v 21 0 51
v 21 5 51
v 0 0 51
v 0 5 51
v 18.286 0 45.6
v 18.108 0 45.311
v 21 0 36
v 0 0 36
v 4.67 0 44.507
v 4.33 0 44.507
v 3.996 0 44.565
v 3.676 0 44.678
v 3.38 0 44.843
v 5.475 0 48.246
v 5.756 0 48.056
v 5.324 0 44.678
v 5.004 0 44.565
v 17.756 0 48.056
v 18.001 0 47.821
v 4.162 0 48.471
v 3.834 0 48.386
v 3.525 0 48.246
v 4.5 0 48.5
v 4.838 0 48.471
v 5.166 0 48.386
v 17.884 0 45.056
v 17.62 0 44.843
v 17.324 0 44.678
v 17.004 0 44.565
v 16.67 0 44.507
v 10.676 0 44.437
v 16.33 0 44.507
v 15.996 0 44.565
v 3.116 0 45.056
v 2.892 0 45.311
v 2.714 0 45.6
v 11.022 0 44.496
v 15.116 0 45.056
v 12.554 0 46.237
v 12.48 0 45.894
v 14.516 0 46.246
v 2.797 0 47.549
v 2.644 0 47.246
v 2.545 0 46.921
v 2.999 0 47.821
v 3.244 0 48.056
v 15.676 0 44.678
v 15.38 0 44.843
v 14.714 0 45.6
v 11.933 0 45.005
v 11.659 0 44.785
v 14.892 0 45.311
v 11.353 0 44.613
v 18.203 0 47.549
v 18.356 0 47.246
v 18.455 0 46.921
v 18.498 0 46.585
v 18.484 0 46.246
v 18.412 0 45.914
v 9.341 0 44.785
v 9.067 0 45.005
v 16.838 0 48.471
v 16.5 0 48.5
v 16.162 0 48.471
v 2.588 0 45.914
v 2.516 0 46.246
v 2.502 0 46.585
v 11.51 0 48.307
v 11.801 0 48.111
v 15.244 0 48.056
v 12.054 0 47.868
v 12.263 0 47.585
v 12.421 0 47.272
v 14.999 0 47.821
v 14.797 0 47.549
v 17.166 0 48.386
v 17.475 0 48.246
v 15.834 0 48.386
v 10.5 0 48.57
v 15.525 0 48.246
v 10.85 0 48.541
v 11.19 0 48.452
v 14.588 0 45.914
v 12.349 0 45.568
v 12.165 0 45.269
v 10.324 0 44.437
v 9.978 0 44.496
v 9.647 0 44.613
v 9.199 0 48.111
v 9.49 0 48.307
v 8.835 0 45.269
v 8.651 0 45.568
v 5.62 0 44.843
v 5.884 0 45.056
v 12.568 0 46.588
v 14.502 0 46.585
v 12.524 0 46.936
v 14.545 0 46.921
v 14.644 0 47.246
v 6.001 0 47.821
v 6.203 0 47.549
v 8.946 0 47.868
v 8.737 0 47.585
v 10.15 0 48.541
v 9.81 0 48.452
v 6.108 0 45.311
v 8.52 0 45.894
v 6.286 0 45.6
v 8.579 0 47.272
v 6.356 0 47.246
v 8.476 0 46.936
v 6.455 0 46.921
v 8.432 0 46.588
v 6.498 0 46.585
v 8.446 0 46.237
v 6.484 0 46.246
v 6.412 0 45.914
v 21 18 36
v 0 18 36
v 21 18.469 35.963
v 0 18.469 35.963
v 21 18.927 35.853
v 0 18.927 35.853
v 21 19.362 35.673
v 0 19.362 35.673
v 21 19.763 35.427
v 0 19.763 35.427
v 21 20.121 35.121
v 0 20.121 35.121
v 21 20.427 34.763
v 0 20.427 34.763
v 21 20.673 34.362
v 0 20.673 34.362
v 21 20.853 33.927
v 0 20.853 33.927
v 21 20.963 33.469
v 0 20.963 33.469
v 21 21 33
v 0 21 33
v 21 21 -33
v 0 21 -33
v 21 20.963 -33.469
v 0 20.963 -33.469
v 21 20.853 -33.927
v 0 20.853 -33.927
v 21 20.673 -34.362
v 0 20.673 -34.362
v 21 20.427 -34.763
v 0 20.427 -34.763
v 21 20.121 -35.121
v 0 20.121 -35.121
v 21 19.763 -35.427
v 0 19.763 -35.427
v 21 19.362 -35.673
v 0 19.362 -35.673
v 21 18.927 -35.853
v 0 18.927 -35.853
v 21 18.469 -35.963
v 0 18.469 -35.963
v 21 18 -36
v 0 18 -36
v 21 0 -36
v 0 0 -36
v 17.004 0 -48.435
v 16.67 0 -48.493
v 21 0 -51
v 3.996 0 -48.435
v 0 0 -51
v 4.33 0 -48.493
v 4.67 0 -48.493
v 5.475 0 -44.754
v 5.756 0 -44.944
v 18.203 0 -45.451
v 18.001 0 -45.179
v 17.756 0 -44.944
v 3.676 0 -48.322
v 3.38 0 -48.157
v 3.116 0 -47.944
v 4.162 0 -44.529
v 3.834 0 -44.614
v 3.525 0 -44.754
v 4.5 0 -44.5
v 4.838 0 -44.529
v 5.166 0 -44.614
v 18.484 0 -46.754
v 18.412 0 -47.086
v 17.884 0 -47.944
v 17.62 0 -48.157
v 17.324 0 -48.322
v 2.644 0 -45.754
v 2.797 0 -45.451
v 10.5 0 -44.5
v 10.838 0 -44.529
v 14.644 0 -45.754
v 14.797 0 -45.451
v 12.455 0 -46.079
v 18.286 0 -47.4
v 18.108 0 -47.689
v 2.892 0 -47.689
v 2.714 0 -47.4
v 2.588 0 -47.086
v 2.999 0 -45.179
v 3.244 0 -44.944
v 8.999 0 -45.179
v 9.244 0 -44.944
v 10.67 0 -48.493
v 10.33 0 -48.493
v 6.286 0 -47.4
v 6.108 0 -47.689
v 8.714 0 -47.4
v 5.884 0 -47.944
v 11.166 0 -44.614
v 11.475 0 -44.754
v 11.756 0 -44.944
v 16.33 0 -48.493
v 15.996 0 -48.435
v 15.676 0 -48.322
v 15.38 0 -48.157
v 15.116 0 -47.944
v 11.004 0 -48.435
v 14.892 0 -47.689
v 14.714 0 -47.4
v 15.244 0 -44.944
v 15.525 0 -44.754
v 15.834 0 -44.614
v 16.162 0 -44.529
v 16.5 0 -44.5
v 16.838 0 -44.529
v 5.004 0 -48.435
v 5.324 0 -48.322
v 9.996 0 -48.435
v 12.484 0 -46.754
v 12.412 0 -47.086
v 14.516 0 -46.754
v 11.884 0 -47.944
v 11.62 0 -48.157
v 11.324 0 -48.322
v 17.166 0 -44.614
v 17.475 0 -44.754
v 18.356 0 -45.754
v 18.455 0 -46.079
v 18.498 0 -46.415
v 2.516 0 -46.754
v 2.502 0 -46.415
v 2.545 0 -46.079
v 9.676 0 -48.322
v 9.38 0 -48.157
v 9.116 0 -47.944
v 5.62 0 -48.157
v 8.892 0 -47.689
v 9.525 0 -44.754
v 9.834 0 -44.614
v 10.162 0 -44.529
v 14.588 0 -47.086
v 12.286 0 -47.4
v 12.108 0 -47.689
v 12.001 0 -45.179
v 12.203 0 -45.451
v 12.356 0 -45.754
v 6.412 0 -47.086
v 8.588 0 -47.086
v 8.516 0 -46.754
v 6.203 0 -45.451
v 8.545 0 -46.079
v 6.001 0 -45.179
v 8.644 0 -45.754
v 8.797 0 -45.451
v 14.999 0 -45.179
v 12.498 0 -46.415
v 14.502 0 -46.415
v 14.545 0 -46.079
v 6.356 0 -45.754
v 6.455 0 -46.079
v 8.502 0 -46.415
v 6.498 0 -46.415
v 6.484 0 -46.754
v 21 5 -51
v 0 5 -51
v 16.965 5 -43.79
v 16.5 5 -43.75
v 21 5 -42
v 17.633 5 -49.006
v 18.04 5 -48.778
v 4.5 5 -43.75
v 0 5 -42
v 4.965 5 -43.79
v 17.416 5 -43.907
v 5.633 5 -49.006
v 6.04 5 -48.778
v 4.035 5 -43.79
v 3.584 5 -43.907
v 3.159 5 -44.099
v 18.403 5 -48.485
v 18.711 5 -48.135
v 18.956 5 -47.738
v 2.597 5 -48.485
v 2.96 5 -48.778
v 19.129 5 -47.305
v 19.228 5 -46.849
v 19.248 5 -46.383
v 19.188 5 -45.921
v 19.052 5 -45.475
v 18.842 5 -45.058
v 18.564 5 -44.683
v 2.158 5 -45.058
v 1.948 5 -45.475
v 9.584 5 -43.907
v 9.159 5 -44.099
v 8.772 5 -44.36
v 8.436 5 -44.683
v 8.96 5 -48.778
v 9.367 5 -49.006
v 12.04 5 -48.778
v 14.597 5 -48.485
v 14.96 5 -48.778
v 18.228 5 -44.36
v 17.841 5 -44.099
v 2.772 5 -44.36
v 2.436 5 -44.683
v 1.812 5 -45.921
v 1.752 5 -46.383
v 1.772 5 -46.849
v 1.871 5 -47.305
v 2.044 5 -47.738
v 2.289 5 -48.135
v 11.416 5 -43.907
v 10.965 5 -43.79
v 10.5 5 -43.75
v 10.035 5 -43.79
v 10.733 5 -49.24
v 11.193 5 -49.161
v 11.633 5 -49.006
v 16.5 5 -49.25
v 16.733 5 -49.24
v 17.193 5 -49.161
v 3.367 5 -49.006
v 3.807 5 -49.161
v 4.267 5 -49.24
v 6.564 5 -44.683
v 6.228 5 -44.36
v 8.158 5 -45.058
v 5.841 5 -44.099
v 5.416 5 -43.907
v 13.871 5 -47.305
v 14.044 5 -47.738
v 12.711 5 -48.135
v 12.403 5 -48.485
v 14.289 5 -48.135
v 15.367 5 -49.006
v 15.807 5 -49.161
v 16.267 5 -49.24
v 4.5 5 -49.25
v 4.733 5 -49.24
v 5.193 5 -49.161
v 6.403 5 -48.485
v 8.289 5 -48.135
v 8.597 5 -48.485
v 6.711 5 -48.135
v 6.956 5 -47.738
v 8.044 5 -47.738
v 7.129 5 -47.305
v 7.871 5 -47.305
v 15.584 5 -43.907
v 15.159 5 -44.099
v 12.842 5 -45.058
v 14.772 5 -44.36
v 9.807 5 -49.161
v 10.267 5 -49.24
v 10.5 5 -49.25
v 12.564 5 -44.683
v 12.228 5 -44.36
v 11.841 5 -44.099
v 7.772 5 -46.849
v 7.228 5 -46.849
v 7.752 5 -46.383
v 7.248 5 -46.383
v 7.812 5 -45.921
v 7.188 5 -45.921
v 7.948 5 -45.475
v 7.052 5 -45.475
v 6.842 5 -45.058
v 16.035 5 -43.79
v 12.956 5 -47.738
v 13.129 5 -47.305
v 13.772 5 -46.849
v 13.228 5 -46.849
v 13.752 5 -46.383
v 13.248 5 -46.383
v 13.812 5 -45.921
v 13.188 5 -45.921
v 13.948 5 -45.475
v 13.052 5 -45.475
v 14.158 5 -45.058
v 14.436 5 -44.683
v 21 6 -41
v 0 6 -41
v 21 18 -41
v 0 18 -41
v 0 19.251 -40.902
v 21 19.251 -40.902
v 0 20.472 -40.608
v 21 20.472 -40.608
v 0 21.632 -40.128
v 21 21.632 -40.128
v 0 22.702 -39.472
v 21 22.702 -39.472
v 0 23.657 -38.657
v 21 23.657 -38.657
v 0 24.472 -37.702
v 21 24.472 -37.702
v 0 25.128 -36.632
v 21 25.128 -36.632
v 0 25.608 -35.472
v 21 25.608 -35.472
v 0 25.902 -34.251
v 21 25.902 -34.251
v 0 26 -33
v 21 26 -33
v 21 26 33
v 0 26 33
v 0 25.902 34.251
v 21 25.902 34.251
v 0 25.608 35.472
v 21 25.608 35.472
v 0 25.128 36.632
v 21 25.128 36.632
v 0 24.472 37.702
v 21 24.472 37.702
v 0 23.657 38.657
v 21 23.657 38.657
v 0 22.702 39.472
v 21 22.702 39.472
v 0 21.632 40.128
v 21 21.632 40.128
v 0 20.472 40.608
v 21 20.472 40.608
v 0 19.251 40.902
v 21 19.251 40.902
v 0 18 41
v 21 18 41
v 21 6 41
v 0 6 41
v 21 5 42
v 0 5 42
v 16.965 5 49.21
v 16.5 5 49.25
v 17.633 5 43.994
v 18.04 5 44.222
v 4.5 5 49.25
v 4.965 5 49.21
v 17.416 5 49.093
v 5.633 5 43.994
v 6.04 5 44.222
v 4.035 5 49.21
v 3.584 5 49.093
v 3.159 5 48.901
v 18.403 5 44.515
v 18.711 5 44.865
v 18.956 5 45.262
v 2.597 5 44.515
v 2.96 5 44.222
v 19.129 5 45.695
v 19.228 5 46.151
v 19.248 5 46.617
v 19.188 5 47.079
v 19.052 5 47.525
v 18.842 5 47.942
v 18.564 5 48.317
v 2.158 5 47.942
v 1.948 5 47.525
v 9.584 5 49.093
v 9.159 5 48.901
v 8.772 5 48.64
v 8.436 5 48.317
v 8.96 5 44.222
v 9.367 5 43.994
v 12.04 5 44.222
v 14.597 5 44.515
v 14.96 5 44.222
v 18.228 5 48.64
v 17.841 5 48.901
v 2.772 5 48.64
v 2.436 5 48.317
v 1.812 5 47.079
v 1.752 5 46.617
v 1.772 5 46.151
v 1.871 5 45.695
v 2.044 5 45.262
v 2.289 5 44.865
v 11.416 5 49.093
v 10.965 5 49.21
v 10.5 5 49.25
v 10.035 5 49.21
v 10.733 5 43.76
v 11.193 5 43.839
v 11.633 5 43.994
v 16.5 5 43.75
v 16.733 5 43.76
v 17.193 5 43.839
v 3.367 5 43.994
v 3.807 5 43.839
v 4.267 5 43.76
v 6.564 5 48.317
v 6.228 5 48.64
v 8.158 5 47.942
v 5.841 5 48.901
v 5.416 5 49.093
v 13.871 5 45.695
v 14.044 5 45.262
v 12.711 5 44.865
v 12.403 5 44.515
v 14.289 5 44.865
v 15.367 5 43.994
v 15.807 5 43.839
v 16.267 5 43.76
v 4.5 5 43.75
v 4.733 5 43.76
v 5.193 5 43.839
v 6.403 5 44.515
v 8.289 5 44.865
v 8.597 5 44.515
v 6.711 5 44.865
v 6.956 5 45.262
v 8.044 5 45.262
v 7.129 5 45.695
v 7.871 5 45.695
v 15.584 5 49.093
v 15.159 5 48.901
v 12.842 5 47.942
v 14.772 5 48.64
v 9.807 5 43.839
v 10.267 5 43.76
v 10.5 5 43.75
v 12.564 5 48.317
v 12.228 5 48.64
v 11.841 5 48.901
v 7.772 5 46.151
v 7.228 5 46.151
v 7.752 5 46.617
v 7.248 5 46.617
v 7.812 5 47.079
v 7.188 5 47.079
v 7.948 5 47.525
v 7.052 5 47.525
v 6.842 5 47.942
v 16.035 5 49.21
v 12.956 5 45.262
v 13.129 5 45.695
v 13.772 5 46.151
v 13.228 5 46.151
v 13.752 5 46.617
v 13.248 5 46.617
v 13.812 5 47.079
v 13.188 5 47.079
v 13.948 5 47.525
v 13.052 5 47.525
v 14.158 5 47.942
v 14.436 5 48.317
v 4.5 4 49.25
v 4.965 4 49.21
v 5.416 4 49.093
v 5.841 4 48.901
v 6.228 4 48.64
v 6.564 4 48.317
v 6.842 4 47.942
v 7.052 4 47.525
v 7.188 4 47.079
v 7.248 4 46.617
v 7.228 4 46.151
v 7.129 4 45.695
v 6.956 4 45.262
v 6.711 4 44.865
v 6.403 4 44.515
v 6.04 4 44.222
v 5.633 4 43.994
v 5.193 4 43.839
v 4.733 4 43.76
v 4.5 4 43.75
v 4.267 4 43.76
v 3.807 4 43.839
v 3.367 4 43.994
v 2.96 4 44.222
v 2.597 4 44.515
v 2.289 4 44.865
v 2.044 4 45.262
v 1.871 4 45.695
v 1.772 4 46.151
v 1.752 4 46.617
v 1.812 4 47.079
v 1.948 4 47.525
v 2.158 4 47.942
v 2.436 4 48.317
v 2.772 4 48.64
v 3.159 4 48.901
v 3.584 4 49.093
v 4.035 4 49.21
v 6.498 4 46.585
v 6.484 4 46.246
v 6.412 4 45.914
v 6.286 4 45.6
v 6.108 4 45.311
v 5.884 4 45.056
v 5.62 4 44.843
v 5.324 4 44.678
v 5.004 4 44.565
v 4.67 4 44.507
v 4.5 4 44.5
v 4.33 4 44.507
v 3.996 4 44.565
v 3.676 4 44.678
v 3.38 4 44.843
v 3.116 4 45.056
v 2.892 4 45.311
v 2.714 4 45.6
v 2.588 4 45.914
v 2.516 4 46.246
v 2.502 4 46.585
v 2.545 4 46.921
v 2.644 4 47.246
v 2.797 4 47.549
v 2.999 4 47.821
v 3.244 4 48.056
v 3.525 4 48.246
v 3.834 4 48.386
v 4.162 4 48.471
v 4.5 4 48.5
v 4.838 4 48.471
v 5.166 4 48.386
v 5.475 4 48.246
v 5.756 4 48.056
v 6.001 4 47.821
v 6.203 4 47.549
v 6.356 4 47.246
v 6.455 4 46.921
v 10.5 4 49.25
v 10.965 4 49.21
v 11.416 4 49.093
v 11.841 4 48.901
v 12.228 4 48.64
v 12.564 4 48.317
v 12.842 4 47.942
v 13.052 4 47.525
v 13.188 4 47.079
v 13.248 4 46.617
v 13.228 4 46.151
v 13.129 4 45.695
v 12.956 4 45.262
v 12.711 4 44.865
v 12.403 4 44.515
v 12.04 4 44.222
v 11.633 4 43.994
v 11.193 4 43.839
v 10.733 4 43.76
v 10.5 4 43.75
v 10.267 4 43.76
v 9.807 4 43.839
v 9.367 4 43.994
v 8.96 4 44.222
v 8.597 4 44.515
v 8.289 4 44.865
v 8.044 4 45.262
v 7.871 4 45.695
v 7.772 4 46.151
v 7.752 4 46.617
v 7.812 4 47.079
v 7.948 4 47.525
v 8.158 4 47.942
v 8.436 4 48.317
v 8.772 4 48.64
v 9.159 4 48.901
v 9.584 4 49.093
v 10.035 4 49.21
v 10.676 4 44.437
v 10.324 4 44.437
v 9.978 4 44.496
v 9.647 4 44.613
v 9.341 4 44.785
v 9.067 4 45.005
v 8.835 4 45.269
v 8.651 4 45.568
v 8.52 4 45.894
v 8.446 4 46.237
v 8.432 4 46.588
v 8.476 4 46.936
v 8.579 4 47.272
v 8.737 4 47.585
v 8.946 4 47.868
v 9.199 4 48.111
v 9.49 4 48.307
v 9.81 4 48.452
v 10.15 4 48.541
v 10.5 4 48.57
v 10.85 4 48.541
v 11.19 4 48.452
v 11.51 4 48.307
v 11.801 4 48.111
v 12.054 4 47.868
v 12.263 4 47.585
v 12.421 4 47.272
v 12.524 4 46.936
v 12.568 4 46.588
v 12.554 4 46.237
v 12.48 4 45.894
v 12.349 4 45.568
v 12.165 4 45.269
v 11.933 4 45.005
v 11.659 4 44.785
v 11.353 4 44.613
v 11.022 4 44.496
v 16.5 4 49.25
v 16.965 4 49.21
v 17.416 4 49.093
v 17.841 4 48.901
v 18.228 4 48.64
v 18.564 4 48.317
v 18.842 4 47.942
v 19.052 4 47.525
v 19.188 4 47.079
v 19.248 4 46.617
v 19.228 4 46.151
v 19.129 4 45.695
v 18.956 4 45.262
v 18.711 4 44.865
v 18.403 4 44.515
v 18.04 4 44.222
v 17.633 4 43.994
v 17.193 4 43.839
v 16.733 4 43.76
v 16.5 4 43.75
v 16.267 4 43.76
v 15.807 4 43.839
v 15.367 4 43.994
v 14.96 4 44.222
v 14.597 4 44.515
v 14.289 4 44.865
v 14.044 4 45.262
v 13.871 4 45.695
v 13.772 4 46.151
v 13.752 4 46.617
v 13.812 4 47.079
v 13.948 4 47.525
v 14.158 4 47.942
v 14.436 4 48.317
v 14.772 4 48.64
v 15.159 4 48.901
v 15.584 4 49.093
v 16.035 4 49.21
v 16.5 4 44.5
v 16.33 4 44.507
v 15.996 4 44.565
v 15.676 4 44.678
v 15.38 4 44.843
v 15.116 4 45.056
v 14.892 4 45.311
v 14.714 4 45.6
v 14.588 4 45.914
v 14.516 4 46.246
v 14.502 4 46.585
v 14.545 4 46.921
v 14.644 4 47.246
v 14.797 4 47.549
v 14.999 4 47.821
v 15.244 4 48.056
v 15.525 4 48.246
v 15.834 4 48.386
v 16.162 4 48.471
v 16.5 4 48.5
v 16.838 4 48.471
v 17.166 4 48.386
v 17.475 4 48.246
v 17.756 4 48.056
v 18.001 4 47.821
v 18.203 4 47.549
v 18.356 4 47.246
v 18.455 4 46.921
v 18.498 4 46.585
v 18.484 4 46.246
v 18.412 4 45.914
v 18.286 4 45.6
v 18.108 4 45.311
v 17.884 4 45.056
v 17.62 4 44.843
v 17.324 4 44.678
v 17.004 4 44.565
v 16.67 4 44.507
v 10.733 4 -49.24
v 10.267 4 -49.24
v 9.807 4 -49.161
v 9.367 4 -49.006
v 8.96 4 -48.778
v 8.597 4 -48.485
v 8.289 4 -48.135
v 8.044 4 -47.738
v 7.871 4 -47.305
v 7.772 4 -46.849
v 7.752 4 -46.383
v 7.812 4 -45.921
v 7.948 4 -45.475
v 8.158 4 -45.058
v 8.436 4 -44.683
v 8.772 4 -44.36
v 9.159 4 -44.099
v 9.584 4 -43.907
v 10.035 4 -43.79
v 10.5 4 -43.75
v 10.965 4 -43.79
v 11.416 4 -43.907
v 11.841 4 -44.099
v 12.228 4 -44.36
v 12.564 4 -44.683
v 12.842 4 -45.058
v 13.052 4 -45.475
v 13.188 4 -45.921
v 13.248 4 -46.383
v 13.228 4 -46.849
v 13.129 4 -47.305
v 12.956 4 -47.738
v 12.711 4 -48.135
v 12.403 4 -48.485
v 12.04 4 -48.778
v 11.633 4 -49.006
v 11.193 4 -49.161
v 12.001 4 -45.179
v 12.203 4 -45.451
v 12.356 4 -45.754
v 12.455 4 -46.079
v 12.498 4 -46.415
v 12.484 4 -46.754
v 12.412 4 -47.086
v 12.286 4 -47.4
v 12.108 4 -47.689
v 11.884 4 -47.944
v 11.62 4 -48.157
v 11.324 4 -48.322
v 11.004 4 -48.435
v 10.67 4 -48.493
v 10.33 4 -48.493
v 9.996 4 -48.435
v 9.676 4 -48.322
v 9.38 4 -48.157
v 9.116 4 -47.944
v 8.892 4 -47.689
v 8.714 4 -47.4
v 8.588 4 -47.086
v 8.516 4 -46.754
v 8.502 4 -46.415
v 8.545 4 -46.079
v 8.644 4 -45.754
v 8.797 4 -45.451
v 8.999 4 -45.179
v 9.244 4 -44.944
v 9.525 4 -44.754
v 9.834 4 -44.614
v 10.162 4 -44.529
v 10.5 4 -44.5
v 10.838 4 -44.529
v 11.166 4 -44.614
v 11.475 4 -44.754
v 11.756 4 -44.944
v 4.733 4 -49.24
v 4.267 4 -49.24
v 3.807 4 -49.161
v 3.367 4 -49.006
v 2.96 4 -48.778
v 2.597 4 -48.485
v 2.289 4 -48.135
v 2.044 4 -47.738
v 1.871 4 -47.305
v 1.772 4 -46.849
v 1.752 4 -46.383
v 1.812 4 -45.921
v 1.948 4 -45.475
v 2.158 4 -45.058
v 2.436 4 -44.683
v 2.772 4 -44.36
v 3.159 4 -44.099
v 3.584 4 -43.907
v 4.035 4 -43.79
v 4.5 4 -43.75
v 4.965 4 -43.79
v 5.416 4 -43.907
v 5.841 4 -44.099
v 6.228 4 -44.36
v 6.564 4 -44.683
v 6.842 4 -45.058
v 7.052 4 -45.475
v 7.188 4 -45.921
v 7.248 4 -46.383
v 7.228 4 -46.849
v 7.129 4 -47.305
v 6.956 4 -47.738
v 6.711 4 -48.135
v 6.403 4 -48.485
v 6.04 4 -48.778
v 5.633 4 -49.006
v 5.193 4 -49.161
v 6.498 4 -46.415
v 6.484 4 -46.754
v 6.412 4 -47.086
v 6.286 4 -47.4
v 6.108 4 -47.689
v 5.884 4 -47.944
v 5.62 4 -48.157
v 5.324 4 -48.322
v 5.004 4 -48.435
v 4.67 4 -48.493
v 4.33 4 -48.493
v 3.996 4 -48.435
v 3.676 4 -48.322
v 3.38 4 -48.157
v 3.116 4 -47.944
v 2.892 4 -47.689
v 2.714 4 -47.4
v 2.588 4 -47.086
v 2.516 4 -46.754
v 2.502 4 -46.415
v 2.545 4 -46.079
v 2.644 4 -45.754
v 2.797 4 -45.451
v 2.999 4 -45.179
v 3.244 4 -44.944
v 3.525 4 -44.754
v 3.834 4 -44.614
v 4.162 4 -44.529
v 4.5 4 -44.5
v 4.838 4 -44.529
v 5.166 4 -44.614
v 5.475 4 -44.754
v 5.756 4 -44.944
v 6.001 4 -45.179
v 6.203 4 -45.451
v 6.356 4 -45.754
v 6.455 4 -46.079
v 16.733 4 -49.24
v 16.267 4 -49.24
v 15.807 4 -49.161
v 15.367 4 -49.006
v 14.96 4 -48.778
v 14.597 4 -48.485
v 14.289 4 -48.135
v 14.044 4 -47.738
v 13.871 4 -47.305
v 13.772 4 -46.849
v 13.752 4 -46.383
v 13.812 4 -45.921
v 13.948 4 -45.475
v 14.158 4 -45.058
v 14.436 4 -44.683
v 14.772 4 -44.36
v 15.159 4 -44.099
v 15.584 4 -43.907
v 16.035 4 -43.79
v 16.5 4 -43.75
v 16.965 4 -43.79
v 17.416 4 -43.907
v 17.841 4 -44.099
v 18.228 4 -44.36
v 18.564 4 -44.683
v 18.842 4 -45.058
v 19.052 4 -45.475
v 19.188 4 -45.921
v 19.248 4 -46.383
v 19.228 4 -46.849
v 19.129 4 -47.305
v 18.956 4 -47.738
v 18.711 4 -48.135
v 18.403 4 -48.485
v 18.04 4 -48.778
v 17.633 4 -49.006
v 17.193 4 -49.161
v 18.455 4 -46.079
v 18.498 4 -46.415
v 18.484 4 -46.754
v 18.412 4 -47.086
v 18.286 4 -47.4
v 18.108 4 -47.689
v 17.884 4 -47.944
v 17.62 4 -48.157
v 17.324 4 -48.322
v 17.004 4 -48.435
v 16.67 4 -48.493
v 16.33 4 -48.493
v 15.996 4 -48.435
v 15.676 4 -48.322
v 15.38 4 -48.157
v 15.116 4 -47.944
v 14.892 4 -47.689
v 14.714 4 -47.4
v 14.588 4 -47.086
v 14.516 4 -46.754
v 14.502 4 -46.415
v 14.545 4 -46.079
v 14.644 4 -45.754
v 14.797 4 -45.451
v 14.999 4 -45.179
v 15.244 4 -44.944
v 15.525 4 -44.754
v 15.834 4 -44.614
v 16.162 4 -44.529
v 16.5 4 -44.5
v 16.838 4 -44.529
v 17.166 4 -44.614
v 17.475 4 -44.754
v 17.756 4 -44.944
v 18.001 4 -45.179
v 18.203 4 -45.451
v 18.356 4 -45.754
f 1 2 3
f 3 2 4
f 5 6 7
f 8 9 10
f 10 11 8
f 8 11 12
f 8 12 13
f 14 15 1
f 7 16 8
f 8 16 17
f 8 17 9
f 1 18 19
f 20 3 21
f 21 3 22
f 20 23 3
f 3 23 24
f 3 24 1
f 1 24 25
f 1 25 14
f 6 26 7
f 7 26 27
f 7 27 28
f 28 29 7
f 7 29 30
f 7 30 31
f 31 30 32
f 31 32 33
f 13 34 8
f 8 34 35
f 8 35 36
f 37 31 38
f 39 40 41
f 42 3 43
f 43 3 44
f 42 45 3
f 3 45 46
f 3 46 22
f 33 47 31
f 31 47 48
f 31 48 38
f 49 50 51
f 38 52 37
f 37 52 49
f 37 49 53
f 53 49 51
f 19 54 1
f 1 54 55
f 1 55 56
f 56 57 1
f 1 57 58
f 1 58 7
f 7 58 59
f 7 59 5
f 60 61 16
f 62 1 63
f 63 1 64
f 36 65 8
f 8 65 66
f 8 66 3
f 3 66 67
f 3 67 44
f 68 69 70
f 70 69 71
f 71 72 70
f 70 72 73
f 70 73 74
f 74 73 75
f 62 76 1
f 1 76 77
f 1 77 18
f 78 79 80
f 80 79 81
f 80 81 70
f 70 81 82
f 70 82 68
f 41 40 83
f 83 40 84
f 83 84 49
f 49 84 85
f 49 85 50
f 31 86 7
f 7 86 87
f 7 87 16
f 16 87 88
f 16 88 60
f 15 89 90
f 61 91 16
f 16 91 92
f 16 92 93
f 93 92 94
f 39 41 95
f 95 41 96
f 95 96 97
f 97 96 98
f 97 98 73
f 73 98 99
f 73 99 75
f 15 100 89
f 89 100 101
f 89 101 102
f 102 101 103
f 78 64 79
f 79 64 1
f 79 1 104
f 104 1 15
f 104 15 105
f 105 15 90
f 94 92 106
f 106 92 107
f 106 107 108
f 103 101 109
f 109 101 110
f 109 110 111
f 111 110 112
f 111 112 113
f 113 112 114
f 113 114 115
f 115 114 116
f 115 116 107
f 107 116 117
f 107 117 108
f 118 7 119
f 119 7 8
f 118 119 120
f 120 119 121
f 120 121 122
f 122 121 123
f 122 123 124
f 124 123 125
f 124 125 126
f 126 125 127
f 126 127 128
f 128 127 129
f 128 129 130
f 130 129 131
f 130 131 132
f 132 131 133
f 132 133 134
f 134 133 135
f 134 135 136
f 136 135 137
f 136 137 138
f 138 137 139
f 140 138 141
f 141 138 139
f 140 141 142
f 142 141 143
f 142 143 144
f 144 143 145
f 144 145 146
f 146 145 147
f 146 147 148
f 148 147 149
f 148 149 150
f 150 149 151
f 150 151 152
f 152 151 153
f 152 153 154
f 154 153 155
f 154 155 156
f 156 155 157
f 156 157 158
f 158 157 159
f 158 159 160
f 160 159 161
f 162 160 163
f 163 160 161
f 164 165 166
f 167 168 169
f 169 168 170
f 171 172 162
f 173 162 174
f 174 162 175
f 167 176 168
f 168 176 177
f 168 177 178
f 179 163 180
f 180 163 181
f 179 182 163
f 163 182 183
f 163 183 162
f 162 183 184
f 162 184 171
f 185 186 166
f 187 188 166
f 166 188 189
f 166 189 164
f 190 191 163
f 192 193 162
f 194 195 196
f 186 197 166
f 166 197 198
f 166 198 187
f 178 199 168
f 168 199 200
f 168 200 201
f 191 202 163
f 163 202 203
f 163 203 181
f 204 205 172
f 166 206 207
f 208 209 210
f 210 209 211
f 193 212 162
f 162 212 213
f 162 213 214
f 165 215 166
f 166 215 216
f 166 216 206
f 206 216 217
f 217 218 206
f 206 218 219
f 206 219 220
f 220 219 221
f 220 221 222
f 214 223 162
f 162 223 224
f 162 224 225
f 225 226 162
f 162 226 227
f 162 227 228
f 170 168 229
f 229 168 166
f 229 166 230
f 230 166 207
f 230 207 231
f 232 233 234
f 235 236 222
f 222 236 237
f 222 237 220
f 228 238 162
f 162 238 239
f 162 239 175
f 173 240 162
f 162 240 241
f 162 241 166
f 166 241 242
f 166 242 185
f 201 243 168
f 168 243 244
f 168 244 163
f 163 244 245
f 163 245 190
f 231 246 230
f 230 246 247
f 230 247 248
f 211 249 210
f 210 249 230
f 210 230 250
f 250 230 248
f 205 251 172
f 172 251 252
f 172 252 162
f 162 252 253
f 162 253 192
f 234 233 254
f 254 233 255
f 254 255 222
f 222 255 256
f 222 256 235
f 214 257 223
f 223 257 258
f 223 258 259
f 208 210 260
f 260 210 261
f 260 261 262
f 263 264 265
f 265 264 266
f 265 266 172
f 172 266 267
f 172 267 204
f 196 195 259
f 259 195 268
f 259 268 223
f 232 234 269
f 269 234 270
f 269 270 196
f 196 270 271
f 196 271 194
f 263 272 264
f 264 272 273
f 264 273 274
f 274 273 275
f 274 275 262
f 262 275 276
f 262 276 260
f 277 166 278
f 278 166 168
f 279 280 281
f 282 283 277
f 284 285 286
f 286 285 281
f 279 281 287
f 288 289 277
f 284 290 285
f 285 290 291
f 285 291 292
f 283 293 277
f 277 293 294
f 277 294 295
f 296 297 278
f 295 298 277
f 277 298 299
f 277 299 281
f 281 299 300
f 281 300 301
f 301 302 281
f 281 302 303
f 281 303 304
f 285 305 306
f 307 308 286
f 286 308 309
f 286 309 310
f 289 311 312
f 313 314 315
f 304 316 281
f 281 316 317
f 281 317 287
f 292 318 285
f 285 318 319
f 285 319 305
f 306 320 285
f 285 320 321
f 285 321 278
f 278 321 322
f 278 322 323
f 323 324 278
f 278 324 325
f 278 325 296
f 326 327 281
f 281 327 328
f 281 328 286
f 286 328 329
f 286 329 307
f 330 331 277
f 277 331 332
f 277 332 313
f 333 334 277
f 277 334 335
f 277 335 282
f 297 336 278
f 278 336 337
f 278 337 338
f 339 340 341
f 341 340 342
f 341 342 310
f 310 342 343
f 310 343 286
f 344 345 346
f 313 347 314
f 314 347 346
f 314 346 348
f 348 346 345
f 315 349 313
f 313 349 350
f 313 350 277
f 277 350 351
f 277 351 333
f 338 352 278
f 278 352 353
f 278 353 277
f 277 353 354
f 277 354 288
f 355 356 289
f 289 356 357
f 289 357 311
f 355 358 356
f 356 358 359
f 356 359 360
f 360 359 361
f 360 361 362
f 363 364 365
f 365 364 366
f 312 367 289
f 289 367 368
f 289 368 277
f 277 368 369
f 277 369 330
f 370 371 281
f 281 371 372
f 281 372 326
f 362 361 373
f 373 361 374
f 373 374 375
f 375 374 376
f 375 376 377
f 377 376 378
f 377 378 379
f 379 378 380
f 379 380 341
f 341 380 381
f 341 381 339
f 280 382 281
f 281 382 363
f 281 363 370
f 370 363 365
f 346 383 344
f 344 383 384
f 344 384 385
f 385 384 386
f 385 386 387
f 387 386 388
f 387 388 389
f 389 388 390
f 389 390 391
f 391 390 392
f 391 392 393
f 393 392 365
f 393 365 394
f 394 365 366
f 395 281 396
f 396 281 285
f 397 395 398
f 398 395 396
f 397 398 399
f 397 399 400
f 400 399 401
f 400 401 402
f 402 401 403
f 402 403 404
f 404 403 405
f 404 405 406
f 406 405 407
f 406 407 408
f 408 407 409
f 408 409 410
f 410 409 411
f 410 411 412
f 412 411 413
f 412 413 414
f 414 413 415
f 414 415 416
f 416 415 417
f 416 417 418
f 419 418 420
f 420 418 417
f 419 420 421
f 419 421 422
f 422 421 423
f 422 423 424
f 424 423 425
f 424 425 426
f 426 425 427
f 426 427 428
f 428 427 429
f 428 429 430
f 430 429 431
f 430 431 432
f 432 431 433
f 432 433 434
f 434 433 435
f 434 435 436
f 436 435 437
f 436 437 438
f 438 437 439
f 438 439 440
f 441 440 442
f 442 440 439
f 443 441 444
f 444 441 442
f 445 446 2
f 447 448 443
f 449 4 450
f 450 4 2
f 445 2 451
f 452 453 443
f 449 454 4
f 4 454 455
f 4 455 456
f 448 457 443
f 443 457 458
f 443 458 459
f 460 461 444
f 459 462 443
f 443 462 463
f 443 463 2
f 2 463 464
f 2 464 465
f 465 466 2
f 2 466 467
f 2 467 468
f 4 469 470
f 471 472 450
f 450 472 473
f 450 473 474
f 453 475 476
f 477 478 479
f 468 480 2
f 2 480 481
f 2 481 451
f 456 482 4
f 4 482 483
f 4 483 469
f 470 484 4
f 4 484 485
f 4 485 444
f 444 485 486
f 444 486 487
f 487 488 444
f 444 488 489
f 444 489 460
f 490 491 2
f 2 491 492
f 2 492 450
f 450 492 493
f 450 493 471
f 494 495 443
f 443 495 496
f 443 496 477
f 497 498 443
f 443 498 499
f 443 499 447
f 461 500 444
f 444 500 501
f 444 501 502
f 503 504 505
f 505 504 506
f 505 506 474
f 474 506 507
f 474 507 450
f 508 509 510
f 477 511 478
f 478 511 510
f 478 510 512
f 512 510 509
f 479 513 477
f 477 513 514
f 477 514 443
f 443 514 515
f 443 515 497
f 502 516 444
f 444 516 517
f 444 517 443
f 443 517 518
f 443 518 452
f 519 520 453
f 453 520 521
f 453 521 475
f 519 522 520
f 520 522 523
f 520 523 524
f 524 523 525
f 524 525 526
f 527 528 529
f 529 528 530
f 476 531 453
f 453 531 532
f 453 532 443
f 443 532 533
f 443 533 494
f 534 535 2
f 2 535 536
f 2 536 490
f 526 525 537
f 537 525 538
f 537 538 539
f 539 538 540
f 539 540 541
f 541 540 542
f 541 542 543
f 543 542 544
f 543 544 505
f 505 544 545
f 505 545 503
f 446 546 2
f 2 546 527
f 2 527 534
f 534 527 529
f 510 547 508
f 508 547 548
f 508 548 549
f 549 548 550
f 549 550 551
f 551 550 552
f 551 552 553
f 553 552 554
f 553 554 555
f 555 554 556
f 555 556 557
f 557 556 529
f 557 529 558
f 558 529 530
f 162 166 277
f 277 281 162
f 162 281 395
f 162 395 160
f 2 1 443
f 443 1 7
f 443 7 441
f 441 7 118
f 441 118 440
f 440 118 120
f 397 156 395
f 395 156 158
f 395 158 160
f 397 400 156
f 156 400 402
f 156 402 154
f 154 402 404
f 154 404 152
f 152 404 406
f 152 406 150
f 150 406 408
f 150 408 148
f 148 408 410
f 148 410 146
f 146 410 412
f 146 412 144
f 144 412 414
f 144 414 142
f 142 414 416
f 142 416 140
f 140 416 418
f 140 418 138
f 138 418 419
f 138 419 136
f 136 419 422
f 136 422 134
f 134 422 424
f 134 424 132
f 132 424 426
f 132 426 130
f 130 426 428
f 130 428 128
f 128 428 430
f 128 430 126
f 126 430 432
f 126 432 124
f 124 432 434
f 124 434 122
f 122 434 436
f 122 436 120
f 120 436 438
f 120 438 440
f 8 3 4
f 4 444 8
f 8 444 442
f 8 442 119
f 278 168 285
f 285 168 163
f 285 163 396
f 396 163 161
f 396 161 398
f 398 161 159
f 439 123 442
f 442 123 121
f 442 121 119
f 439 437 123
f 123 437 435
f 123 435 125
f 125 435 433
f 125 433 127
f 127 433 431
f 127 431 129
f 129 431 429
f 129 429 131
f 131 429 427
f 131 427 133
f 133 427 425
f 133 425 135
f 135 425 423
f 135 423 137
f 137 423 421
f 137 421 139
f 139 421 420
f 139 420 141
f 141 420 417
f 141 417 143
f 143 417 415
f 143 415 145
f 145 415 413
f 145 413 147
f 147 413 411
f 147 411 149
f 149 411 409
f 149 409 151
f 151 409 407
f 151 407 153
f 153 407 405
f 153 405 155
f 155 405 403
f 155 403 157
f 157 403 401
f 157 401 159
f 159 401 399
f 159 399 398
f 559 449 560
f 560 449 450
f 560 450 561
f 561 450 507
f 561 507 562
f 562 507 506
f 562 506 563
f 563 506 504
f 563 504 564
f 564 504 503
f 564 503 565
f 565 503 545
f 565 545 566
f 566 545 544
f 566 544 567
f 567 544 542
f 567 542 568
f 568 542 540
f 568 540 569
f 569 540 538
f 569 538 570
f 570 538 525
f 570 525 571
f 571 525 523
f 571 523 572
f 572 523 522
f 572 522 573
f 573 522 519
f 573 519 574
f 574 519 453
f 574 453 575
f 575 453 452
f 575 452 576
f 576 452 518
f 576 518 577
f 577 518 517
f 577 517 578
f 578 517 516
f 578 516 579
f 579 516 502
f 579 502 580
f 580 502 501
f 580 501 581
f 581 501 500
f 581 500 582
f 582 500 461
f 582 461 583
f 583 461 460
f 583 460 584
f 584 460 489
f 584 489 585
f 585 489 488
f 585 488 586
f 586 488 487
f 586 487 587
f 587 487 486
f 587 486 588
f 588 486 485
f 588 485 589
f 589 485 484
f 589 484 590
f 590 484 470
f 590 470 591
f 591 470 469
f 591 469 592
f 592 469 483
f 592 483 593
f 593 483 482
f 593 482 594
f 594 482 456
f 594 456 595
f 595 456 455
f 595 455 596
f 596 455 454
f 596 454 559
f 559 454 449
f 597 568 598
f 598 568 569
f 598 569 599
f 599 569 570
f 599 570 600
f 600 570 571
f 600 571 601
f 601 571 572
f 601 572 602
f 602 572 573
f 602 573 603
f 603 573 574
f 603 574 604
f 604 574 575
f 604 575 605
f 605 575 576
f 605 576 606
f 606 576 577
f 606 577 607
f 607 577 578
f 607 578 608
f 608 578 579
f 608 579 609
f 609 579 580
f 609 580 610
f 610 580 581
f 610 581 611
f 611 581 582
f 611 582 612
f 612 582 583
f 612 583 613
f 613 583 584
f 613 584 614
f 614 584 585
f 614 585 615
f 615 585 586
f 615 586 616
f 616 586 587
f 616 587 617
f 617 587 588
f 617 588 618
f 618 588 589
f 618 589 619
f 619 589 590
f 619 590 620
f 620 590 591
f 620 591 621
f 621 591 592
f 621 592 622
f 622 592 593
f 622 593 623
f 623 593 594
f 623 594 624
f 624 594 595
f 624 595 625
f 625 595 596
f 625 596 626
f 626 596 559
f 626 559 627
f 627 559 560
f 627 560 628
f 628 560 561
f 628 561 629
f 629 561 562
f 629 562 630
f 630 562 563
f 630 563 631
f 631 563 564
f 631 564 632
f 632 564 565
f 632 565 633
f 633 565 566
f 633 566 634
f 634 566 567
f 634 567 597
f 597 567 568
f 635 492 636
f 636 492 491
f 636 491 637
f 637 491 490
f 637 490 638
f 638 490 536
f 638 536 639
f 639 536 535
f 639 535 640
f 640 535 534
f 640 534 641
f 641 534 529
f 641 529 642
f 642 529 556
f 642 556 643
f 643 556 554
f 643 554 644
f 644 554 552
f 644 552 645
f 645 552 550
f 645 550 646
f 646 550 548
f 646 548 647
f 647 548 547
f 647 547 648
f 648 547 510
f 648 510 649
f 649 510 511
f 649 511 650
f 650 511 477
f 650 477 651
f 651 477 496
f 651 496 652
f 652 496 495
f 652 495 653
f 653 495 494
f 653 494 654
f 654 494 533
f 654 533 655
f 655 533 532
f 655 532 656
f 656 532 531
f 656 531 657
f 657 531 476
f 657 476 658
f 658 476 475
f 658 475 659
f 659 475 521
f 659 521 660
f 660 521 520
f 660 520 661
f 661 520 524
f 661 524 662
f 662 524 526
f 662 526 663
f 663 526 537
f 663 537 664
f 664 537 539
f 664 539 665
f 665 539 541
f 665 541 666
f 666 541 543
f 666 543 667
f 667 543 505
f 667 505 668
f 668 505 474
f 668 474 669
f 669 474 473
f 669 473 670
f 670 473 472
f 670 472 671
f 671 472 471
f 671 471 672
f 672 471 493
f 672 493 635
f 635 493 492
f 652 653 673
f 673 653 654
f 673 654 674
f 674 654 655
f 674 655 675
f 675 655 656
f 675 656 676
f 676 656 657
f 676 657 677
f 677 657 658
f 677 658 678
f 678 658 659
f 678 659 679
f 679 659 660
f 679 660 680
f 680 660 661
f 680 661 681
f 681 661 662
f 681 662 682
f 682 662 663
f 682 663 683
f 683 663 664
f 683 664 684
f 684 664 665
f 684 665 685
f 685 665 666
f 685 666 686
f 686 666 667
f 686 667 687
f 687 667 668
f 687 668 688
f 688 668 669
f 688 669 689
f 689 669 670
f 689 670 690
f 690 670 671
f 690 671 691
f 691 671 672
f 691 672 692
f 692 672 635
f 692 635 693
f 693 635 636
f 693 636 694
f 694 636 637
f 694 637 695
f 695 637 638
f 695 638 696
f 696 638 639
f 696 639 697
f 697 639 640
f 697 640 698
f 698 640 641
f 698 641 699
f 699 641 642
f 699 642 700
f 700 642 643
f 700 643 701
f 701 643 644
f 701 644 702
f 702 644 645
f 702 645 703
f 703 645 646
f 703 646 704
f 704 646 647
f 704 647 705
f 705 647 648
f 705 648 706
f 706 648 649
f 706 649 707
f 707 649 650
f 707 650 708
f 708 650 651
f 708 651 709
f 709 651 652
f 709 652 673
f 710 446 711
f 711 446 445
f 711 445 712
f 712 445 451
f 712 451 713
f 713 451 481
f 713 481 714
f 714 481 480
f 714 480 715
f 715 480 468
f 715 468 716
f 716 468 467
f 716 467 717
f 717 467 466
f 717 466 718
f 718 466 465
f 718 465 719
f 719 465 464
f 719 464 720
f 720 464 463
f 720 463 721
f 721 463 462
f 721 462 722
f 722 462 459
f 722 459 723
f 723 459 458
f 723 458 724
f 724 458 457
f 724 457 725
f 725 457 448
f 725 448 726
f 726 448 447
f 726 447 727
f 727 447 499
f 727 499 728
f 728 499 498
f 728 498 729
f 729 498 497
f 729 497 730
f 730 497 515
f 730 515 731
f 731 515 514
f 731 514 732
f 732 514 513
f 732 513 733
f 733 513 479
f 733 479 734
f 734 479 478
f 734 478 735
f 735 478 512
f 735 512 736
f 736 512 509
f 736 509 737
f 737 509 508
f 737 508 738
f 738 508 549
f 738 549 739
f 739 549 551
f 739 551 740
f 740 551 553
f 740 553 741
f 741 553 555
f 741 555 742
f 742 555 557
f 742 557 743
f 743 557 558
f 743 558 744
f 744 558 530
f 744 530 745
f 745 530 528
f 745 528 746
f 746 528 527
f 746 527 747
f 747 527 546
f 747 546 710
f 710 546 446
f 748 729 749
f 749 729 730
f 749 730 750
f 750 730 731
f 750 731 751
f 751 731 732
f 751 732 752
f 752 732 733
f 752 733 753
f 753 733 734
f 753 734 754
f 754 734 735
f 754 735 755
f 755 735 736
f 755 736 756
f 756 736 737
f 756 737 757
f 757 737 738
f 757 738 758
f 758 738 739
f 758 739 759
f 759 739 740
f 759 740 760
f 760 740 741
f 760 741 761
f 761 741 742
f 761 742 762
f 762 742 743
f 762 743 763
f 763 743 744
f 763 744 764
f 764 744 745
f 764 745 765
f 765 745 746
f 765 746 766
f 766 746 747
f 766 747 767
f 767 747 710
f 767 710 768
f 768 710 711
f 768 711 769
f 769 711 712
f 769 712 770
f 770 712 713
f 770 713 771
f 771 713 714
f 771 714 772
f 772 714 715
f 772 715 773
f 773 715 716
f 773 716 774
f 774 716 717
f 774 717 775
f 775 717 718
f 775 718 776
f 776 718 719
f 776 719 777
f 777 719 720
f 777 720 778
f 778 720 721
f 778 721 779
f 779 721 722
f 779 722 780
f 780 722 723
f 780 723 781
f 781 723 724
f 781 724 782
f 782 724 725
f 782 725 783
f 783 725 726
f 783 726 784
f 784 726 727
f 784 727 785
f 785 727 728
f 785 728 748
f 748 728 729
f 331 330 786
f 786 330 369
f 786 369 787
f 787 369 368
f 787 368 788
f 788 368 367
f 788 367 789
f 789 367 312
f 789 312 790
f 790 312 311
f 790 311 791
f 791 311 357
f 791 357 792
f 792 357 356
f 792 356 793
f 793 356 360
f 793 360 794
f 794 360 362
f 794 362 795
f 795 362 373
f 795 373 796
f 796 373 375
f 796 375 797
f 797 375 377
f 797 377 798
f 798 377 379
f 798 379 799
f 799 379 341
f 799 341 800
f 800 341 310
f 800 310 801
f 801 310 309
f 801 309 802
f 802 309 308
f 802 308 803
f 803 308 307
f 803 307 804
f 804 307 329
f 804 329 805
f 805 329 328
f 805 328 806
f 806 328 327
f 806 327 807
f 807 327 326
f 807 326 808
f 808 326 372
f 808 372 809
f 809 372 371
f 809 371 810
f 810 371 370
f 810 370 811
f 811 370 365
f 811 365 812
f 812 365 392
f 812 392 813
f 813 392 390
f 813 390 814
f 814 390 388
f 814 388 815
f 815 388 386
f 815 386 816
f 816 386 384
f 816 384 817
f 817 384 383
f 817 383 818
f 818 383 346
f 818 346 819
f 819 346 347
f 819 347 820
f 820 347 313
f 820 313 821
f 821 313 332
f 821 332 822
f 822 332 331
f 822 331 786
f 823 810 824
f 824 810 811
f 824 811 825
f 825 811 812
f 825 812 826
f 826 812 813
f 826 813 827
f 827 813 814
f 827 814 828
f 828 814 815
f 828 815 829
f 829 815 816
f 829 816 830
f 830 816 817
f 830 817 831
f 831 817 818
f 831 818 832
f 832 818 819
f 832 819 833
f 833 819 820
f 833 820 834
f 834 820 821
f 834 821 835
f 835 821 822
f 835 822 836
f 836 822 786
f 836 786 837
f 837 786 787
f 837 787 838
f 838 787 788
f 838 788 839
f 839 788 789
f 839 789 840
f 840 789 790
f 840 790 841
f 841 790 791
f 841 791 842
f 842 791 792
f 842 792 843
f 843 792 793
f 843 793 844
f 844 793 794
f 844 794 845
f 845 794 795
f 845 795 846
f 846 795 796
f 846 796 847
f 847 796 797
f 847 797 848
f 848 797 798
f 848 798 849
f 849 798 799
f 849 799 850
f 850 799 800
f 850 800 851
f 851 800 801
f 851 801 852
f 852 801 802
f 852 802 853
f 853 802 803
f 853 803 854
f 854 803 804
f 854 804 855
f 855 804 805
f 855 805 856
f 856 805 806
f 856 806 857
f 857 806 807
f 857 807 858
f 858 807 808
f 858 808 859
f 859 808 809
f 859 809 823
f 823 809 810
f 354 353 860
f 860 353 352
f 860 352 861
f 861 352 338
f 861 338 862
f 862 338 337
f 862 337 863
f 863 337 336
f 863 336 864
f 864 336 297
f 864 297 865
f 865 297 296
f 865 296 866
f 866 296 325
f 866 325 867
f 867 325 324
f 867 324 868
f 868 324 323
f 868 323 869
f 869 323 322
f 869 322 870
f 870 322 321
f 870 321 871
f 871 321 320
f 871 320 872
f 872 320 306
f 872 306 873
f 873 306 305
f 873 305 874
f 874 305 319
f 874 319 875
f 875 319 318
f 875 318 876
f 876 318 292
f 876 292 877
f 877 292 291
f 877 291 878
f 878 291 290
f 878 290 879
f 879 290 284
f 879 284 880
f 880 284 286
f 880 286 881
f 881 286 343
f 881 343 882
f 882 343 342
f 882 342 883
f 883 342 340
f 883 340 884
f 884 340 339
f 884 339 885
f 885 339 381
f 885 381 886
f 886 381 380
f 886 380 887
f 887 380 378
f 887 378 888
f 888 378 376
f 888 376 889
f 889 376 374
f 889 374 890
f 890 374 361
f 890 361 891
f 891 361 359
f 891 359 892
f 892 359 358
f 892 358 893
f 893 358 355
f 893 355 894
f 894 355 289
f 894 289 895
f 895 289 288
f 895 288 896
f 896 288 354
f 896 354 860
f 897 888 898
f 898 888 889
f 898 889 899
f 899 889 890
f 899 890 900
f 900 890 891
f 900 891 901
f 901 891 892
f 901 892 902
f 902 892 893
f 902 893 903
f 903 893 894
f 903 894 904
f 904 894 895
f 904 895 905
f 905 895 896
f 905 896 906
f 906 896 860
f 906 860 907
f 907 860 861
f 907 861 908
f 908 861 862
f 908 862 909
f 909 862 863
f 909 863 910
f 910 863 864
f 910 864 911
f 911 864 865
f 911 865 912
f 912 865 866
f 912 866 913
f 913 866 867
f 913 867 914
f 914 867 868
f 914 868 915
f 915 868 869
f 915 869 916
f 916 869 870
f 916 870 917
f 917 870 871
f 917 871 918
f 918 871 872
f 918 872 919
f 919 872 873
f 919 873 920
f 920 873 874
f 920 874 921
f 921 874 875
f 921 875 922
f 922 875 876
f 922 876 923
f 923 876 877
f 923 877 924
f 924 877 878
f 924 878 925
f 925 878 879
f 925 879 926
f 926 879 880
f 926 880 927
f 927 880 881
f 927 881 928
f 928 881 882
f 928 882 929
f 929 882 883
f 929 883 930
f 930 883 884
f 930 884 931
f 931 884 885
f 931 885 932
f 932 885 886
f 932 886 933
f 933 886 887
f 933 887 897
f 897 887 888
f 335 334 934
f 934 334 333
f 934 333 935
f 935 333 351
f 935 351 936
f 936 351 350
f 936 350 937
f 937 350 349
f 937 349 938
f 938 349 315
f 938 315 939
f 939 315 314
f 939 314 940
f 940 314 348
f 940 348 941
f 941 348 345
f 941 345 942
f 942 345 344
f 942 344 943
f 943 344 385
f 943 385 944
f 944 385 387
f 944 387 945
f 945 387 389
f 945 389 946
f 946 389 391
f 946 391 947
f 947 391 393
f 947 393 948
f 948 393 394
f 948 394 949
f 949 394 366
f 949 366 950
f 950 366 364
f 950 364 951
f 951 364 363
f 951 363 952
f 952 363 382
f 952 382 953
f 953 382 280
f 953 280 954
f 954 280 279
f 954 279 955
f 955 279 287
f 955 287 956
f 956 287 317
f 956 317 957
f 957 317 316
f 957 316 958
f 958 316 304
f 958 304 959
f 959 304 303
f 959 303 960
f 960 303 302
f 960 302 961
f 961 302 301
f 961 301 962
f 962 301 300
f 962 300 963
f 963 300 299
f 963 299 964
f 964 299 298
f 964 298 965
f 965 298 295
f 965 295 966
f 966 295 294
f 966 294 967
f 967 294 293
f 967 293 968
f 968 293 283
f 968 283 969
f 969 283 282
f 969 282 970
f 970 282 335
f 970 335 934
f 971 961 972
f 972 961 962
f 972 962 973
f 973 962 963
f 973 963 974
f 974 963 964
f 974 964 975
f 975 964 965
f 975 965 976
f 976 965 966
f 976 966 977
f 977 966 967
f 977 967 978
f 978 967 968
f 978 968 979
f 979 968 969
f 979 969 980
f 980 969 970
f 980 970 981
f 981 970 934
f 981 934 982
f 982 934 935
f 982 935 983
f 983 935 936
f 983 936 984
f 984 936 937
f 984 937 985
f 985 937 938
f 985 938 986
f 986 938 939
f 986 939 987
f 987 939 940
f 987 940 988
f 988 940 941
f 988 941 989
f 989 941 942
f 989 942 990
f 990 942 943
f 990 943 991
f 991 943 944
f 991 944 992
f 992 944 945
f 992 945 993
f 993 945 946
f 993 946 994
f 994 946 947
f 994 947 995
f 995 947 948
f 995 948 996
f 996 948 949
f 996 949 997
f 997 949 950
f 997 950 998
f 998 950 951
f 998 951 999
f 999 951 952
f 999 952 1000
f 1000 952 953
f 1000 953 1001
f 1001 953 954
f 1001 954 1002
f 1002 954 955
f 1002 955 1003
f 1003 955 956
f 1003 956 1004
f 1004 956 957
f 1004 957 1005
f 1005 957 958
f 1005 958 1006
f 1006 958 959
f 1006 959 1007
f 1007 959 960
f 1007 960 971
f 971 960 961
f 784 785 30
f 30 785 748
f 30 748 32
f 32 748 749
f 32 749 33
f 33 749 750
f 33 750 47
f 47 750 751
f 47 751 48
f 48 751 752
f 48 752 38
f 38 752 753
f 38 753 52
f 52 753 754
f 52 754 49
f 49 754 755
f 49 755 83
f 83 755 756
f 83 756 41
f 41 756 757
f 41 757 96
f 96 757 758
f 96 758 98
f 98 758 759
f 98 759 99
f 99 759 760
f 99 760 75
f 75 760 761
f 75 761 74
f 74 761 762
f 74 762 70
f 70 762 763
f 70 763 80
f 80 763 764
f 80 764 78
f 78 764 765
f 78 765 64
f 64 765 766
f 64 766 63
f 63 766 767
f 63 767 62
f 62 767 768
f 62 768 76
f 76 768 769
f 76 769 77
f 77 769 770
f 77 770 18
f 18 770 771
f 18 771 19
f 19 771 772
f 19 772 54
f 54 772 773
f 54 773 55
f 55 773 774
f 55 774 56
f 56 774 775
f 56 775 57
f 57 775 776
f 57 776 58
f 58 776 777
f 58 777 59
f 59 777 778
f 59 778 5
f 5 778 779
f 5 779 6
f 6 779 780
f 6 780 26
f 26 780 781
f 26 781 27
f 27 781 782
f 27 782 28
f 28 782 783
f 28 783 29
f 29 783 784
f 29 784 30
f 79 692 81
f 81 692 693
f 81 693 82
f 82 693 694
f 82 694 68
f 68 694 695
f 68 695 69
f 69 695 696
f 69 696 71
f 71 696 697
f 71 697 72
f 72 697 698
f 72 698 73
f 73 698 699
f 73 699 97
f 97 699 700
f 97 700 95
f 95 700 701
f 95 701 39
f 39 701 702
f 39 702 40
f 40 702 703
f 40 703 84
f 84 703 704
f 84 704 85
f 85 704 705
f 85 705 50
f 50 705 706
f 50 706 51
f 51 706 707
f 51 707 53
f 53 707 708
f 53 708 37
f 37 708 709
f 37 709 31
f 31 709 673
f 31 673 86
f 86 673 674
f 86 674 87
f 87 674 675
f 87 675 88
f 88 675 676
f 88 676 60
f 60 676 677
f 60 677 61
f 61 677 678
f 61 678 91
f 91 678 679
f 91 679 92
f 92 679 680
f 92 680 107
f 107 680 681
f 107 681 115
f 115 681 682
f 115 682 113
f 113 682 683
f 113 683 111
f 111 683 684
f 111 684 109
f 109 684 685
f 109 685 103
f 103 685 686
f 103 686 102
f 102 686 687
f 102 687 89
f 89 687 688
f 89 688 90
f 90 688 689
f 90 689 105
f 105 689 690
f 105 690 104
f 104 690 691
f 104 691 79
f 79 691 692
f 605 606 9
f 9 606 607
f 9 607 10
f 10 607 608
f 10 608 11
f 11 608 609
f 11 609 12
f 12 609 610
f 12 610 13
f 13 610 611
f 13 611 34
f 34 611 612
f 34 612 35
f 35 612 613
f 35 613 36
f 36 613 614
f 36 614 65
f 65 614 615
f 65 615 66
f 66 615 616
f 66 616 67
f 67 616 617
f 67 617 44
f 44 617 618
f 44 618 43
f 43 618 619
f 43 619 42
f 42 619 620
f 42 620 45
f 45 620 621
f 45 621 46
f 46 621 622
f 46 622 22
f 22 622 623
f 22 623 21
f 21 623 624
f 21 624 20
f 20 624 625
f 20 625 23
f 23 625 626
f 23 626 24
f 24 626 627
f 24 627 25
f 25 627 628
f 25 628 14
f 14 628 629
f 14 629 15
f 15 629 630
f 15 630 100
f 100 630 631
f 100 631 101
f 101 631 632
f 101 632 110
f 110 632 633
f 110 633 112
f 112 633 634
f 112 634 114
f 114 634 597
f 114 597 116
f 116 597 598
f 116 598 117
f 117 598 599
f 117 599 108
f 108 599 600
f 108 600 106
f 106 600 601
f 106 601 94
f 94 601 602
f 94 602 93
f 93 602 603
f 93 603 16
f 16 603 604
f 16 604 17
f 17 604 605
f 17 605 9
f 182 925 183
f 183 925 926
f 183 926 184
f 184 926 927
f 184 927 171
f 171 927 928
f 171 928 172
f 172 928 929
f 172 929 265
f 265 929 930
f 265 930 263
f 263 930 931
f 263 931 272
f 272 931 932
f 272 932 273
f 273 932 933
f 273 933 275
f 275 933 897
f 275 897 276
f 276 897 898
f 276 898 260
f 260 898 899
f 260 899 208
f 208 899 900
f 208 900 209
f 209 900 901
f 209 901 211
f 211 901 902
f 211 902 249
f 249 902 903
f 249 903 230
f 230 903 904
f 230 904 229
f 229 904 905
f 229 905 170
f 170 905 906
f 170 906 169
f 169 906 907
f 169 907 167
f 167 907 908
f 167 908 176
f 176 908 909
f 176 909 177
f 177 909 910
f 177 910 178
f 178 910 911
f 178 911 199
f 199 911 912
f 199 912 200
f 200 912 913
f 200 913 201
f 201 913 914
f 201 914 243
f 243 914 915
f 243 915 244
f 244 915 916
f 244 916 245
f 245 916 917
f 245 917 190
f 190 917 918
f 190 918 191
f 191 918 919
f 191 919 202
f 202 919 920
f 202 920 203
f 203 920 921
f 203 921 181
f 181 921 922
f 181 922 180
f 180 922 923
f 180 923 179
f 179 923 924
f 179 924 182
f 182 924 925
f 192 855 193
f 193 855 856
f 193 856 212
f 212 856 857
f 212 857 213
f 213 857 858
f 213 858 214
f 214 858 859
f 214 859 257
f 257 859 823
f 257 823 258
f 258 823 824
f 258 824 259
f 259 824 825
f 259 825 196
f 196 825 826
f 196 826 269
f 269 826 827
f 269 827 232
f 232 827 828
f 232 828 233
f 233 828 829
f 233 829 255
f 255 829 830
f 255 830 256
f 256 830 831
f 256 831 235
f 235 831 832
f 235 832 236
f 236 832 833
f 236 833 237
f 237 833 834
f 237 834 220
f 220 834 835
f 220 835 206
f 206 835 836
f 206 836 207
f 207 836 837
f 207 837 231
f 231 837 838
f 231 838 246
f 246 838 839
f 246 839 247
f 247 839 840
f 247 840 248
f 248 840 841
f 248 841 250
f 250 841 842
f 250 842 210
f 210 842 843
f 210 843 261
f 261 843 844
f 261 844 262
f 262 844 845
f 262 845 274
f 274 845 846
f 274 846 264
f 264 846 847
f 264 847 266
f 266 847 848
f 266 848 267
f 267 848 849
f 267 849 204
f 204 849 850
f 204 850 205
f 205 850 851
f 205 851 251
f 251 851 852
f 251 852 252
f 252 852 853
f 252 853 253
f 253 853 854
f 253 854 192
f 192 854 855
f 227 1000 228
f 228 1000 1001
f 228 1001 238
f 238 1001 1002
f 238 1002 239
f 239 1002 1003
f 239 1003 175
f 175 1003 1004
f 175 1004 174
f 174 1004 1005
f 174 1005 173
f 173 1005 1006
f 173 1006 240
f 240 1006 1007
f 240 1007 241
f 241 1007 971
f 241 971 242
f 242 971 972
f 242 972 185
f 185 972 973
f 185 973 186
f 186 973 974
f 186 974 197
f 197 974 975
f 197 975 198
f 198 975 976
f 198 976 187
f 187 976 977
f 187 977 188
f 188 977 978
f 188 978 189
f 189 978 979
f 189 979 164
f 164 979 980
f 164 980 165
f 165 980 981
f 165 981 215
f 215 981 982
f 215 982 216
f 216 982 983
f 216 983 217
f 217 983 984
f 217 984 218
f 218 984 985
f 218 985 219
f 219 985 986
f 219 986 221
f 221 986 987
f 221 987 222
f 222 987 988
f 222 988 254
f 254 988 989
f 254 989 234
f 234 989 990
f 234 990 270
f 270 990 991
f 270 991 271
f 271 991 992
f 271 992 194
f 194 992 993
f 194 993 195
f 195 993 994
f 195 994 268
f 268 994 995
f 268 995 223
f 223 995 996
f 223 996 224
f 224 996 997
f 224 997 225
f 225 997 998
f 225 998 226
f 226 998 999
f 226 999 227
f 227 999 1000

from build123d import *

# Parameters (mm, degrees)
SALIENTE_EXTRUIR1_DEPTH = 21
CROQUIS2_R              = 2.75
CORTAR_EXTRUIR1_DEPTH   = 22
CROQUIS3_R              = 2
CROQUIS3_R_2            = 2.070321152
CROQUIS3_R_3            = 1.933403805
CORTAR_EXTRUIR3_DEPTH   = 22
CROQUIS5_R              = 1.933403805
CROQUIS5_R_2            = 2.015312249
CORTAR_EXTRUIR4_DEPTH   = 22


with BuildPart() as part:
    # Croquis1 → Saliente-Extruir1 (new body)
    with BuildSketch(Plane(origin=(0, 0, 0), x_dir=(0, 0, -1), z_dir=(1, 0, 0))):
        with BuildLine():
            Line((-51, 0), (-36, 0))
            Line((-36, 0), (-36, 18))
            ThreePointArc((-36, 18), (-35.121320344, 20.121320344), (-33, 21))
            Line((-33, 21), (33, 21))
            ThreePointArc((33, 21), (35.121320344, 20.121320344), (36, 18))
            Line((36, 18), (36, 0))
            Line((36, 0), (51, 0))
            Line((51, 0), (51, 5))
            Line((51, 5), (42, 5))
            Line((42, 5), (41, 6))
            Line((41, 6), (41, 18))
            ThreePointArc((41, 18), (38.656854249, 23.656854249), (33, 26))
            Line((33, 26), (-33, 26))
            ThreePointArc((-33, 26), (-38.656854249, 23.656854249), (-41, 18))
            Line((-41, 18), (-41, 6))
            Line((-41, 6), (-42, 5))
            Line((-42, 5), (-51, 5))
            Line((-51, 5), (-51, 0))
        make_face()
    extrude(amount=SALIENTE_EXTRUIR1_DEPTH)

    # Croquis2 → Cortar-Extruir1 (cut)
    with BuildSketch(Plane(origin=(0, 26, 0), x_dir=(1, 0, 0), z_dir=(0, 1, 0))):
        with Locations(Location((10.5, 46.5, 0), (0, 0, 270))):
            Circle(CROQUIS2_R)
        with Locations(Location((16.5, 46.5, 0), (0, 0, 270))):
            Circle(CROQUIS2_R)
        with Locations(Location((4.5, 46.5, 0), (0, 0, 270))):
            Circle(CROQUIS2_R)
        with Locations(Location((16.5, -46.5, 0), (0, 0, 90))):
            Circle(CROQUIS2_R)
        with Locations(Location((10.5, -46.5, 0), (0, 0, 90))):
            Circle(CROQUIS2_R)
        with Locations(Location((4.5, -46.5, 0), (0, 0, 90))):
            Circle(CROQUIS2_R)
    extrude(amount=-CORTAR_EXTRUIR1_DEPTH, mode=Mode.SUBTRACT)

    # Croquis3 → Cortar-Extruir3 (cut)
    # profile 1 of 6: a face of its own
    with BuildSketch(Plane(origin=(0, 4, 0), x_dir=(1, 0, 0), z_dir=(0, 1, 0))):
        with Locations(Location((4.5, 46.5, 0), (0, 0, 270))):
            Circle(CROQUIS3_R)
    # profile 2 of 6: a face of its own
    with BuildSketch(Plane(origin=(0, 4, 0), x_dir=(1, 0, 0), z_dir=(0, 1, 0))):
        with Locations(Location((10.5, 46.5, 0), (0, 0, 270))):
            Circle(CROQUIS3_R)
    # profile 3 of 6: a face of its own
    with BuildSketch(Plane(origin=(0, 4, 0), x_dir=(1, 0, 0), z_dir=(0, 1, 0))):
        with Locations(Location((16.5, 46.5, 0), (0, 0, 270))):
            Circle(CROQUIS3_R)
    # profile 4 of 6: a face of its own
    with BuildSketch(Plane(origin=(0, 4, 0), x_dir=(1, 0, 0), z_dir=(0, 1, 0))):
        with Locations(Location((10.5, -46.5, 0), (0, 0, 270))):
            Circle(CROQUIS3_R_2)
        with Locations(Location((10.5, -46.5, 0), (0, 0, 270))):
            Circle(CROQUIS3_R, mode=Mode.SUBTRACT)
    # profile 5 of 6: a face of its own
    with BuildSketch(Plane(origin=(0, 4, 0), x_dir=(1, 0, 0), z_dir=(0, 1, 0))):
        with Locations(Location((16.5, -46.5, 0), (0, 0, 270))):
            Circle(CROQUIS3_R)
        with Locations(Location((16.5, -46.5, 0), (0, 0, 270))):
            Circle(CROQUIS3_R_3, mode=Mode.SUBTRACT)
    # profile 6 of 6: a face of its own
    with BuildSketch(Plane(origin=(0, 4, 0), x_dir=(1, 0, 0), z_dir=(0, 1, 0))):
        with Locations(Location((4.5, -46.5, 0), (0, 0, 270))):
            Circle(CROQUIS3_R)
        with Locations(Location((4.5, -46.5, 0), (0, 0, 270))):
            Circle(CROQUIS3_R_3, mode=Mode.SUBTRACT)
    extrude(amount=-CORTAR_EXTRUIR3_DEPTH, mode=Mode.SUBTRACT)


with BuildPart() as cortar_extruir3_piece_1:
    # of the separate pieces the step leaves, piece 1, a body of its own (cortar_extruir3_pieces)
    add(part.part.solids().sort_by_distance((0, 18, 41))[0])


with BuildPart() as cortar_extruir3_piece_2:
    # of the separate pieces the step leaves, piece 2, a body of its own (cortar_extruir3_pieces)
    add(part.part.solids().sort_by_distance((10.5, 0, 48.5))[0])


with BuildPart() as cortar_extruir3_piece_3:
    # of the separate pieces the step leaves, piece 3, a body of its own (cortar_extruir3_pieces)
    add(part.part.solids().sort_by_distance((4.5, 0, 48.433403805))[0])


with BuildPart() as cortar_extruir3_piece_4:
    # of the separate pieces the step leaves, piece 4, a body of its own (cortar_extruir3_pieces)
    add(part.part.solids().sort_by_distance((16.5, 0, 48.433403805))[0])


with BuildPart() as cortar_extruir4_tool:
    # Croquis5 → Cortar-Extruir4 (new body)
    with BuildSketch(Plane(origin=(0, 4, 0), x_dir=(1, 0, 0), z_dir=(0, 1, 0))):
        with Locations((4.5, -46.5)):
            Circle(CROQUIS5_R)
        with Locations((10.5, -46.5)):
            Circle(CROQUIS5_R_2)
        with Locations((16.5, -46.5)):
            Circle(CROQUIS5_R)
    extrude(amount=-CORTAR_EXTRUIR4_DEPTH)


with BuildPart() as cortar_extruir3_piece_2_1:
    add(cortar_extruir3_piece_2.part)

    # Cortar-Extruir4: cut by cortar_extruir4_tool
    add(cortar_extruir4_tool.part, mode=Mode.SUBTRACT)


with BuildPart() as cortar_extruir3_piece_3_1:
    add(cortar_extruir3_piece_3.part)

    # Cortar-Extruir4: cut by cortar_extruir4_tool
    add(cortar_extruir4_tool.part, mode=Mode.SUBTRACT)


with BuildPart() as cortar_extruir3_piece_4_1:
    add(cortar_extruir3_piece_4.part)

    # Cortar-Extruir4: cut by cortar_extruir4_tool
    add(cortar_extruir4_tool.part, mode=Mode.SUBTRACT)


solid = cortar_extruir3_piece_1.part
